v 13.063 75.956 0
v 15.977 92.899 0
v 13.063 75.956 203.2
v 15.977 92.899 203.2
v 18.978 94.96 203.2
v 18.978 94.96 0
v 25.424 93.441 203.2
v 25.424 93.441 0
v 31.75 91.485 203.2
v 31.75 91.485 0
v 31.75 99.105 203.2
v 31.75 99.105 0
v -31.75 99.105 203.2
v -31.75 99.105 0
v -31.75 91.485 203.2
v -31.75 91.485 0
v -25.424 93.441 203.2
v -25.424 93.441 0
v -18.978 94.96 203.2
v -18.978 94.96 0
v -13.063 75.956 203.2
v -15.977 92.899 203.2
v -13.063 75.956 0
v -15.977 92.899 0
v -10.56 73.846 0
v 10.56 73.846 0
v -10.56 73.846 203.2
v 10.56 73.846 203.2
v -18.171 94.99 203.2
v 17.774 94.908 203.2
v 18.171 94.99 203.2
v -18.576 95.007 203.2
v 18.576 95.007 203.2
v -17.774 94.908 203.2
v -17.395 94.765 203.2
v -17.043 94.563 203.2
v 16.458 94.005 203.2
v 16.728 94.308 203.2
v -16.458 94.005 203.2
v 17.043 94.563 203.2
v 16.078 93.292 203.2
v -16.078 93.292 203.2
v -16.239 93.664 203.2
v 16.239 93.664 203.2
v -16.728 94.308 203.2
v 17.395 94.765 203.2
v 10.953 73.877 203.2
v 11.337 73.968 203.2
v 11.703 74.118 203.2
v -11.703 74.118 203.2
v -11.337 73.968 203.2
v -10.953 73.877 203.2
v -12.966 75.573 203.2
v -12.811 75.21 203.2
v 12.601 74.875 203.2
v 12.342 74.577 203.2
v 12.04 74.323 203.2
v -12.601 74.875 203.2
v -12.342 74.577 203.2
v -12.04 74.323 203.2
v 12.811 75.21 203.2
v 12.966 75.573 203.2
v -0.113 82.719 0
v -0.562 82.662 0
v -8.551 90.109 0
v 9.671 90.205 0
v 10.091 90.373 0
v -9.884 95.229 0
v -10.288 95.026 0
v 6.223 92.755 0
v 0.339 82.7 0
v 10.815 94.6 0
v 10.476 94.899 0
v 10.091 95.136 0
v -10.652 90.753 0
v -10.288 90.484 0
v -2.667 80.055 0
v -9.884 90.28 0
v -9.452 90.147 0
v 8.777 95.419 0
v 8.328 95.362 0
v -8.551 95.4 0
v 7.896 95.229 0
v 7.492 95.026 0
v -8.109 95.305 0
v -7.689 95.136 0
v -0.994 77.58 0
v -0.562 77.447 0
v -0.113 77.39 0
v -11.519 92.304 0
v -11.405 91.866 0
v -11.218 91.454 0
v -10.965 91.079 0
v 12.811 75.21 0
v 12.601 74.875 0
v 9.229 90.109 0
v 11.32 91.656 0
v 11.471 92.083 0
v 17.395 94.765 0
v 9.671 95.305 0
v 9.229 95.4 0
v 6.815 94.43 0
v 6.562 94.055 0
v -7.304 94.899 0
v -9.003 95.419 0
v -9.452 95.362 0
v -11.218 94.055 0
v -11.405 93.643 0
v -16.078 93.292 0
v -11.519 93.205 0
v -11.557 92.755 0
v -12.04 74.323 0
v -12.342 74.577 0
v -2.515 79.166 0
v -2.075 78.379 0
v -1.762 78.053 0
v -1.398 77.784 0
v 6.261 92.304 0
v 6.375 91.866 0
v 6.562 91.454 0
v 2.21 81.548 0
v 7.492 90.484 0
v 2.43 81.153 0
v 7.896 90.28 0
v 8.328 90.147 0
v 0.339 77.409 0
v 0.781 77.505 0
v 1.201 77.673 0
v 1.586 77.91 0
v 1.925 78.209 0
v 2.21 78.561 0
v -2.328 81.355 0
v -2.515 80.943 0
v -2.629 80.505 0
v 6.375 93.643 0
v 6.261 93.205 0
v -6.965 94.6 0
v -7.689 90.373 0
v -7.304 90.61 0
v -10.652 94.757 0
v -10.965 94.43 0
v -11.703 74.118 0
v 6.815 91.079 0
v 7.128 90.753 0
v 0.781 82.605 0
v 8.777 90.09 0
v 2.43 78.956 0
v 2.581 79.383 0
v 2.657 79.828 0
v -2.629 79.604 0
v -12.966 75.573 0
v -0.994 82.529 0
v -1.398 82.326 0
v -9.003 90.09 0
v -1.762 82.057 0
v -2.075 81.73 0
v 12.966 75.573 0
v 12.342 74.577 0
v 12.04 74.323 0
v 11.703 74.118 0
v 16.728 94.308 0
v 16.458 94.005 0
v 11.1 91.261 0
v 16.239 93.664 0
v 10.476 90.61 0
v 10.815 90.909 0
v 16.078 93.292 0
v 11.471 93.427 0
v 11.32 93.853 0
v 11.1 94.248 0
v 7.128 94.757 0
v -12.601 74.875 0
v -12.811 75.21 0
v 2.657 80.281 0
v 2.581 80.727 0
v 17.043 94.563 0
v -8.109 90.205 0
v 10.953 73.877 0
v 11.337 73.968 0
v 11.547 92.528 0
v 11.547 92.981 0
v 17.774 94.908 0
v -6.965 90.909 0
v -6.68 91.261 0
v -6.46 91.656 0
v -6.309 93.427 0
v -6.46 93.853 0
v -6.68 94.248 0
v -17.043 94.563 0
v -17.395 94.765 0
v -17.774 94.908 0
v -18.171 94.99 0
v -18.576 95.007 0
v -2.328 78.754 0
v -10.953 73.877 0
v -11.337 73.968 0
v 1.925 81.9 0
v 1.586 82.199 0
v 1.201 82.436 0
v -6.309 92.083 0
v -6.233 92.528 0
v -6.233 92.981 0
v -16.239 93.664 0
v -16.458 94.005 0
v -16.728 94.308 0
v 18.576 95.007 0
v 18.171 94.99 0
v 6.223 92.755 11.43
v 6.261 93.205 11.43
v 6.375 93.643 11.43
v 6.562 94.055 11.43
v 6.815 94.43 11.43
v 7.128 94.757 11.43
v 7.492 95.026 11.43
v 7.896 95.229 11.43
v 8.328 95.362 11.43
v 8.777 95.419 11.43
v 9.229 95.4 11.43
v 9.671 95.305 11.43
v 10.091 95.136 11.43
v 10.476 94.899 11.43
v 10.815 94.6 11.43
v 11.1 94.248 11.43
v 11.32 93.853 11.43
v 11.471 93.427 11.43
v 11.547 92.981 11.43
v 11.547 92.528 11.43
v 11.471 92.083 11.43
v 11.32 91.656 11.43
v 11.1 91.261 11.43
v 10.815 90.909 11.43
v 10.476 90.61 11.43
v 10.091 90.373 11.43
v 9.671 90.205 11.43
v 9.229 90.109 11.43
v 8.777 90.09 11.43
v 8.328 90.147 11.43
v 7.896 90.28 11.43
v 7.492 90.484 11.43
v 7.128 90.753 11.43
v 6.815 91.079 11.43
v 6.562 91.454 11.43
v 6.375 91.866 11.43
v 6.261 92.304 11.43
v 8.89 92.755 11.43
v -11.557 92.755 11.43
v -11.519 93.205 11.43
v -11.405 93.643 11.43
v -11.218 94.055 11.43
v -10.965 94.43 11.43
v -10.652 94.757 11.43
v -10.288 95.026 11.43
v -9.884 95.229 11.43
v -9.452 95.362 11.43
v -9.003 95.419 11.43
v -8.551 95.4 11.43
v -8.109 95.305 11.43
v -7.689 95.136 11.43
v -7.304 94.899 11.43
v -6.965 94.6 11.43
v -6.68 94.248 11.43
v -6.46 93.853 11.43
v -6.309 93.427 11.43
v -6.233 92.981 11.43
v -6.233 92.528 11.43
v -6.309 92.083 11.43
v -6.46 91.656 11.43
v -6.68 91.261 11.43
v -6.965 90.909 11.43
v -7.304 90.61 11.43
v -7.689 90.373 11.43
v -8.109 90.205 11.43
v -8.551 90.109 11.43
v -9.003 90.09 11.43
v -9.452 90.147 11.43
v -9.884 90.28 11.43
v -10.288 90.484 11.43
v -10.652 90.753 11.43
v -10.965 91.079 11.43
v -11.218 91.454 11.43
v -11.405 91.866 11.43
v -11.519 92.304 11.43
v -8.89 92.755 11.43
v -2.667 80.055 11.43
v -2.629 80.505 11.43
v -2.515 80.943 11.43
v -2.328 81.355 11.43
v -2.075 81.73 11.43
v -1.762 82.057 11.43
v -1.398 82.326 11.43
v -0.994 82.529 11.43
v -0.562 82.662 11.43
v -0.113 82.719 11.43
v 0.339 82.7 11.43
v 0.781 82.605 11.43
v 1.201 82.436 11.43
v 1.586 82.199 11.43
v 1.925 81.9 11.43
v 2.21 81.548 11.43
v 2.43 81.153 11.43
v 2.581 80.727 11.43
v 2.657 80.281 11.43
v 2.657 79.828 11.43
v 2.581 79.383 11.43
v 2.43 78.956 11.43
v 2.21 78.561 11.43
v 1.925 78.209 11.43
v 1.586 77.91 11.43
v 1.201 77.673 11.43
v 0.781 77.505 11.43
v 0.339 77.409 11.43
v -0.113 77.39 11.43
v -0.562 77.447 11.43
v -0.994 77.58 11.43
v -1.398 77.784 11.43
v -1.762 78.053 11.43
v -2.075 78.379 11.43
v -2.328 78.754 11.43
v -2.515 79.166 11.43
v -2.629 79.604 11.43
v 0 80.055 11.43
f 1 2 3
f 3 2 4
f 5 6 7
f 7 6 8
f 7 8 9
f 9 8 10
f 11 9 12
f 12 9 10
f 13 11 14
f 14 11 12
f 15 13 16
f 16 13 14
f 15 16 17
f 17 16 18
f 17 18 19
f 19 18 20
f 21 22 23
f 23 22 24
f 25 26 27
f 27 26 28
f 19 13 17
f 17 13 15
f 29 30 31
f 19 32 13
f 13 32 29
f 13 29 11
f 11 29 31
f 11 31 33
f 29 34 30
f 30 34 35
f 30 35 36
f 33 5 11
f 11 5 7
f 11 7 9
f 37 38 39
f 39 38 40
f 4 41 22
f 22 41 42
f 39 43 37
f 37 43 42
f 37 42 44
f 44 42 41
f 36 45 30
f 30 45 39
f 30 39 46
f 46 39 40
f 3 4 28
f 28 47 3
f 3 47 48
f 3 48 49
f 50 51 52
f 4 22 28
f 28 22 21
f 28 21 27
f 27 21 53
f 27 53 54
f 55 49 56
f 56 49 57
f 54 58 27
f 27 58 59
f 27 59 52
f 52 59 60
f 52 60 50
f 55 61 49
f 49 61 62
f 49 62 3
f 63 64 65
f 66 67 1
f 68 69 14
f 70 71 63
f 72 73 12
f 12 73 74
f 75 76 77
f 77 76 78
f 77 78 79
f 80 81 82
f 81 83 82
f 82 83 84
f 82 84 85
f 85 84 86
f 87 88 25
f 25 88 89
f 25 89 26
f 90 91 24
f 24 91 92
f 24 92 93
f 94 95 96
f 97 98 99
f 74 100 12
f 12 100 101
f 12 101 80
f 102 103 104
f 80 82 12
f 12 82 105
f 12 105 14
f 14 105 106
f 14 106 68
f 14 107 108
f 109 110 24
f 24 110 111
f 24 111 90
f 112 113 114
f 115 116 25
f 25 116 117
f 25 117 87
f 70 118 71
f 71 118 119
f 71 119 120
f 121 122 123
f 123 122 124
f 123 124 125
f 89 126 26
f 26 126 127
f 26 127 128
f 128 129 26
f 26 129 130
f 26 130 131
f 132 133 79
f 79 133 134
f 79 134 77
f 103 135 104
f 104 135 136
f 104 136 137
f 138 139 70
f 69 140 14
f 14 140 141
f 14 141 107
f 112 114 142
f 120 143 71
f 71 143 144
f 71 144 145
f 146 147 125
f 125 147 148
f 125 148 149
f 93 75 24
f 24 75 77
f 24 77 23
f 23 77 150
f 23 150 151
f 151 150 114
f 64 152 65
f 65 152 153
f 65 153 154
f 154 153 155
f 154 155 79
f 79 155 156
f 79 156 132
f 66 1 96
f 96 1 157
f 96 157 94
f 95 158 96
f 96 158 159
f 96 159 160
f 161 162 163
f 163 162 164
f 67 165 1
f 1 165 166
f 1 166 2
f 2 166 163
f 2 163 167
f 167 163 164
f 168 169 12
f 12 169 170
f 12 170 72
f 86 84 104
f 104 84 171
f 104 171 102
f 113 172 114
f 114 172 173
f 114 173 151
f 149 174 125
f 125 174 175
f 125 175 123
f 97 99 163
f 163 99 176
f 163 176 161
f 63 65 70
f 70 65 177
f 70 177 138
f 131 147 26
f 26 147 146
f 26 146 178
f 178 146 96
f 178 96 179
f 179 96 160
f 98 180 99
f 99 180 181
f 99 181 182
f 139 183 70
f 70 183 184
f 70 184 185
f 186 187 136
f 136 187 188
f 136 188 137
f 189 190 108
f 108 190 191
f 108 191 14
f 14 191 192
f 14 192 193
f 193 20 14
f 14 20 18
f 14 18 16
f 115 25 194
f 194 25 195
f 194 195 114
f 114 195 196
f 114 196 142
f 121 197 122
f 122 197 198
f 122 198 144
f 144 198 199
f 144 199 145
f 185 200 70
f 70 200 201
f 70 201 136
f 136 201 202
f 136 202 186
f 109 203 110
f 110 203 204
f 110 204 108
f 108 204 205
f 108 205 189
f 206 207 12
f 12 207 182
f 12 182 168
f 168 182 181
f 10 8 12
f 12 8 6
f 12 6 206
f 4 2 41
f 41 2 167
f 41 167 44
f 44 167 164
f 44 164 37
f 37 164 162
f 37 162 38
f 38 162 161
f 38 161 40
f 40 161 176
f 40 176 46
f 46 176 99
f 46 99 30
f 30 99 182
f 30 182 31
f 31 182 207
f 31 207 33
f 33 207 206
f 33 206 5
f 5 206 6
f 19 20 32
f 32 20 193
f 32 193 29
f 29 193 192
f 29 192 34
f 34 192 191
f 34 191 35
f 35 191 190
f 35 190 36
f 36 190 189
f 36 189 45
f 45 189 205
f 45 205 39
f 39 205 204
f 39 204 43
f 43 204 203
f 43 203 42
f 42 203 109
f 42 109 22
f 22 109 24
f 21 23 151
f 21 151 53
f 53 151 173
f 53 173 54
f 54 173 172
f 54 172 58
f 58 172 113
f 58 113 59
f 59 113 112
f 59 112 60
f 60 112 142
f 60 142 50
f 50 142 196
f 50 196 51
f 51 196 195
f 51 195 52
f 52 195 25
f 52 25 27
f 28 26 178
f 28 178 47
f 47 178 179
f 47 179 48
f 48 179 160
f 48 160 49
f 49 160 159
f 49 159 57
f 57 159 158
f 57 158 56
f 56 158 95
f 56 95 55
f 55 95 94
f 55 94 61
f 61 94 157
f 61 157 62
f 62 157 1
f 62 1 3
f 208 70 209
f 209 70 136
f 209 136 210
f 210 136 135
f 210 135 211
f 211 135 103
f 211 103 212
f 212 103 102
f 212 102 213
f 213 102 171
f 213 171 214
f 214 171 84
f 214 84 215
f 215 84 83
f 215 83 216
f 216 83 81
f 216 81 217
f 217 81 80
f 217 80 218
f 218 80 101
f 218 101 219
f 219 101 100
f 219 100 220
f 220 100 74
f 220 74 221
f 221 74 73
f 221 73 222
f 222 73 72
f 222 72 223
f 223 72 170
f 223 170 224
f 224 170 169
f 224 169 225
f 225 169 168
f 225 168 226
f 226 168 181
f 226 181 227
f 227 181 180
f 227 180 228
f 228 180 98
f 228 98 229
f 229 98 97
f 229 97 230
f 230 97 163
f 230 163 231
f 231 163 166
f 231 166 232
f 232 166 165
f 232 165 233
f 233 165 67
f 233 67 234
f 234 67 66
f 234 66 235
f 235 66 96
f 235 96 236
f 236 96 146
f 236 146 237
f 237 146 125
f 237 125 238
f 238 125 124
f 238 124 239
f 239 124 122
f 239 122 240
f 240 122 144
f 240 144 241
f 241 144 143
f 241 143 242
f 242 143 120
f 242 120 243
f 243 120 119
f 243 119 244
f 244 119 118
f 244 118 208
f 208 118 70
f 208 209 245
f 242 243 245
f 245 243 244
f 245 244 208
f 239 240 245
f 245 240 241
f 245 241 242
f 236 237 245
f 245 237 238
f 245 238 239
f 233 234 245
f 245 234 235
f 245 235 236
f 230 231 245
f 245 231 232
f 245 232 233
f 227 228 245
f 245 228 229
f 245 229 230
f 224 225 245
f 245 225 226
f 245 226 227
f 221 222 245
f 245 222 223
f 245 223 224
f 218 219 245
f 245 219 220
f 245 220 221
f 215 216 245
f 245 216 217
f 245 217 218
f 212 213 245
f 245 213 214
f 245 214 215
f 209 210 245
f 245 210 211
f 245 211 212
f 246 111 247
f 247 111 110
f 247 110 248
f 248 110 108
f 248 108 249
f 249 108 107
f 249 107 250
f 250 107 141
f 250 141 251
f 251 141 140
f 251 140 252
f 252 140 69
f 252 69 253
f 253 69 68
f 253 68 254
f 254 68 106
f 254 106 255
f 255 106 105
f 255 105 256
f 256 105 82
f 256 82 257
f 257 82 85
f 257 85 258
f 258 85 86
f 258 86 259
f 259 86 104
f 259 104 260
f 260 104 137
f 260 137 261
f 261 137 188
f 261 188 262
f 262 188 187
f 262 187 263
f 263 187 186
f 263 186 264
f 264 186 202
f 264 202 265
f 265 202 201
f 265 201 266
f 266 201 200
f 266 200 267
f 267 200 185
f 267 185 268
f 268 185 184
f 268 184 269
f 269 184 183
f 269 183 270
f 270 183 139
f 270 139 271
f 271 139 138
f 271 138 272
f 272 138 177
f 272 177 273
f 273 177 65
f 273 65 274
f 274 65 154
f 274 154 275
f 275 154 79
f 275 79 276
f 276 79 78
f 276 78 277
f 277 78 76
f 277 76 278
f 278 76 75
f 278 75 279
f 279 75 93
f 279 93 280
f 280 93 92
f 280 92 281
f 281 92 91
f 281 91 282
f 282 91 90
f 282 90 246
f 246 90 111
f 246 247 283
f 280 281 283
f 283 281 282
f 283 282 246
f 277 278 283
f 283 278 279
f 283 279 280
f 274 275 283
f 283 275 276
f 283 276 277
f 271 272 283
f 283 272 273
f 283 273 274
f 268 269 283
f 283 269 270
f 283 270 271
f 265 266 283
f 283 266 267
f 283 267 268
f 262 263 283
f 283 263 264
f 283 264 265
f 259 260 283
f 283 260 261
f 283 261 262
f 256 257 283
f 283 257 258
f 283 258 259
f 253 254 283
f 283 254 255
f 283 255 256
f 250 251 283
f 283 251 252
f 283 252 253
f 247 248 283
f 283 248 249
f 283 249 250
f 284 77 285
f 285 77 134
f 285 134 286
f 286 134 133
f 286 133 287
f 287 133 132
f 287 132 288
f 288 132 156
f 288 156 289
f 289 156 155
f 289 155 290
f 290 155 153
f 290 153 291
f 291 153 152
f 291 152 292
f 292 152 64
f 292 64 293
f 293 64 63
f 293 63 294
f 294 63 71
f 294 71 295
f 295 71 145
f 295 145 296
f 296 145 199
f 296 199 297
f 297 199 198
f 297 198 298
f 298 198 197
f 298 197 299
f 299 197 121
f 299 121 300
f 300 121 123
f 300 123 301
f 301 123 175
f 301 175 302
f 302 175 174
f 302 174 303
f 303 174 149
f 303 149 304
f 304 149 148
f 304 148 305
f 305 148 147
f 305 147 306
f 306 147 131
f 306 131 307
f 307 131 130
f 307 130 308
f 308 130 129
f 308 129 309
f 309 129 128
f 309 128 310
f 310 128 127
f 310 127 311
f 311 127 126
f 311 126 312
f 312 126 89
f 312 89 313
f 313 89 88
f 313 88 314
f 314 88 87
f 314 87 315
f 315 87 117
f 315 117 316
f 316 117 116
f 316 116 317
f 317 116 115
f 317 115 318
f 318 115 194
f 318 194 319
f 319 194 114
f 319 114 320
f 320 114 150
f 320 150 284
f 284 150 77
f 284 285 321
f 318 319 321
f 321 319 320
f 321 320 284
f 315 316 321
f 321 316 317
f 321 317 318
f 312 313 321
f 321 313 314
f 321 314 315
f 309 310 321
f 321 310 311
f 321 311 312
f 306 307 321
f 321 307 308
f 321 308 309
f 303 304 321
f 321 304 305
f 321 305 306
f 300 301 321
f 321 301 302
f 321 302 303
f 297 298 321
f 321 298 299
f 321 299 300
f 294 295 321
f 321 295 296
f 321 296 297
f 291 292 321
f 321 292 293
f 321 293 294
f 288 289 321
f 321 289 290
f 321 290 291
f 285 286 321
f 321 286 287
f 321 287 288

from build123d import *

# Parameters (mm, degrees)
BOSS_EXTRUDE1_DEPTH = 203.2
FILLET1_R           = 2.54
FILLET2_R           = 2.54
FILLET3_R           = 2.54
SKETCH2_R           = 2.667
CUT_EXTRUDE1_DEPTH  = 11.43


with BuildPart() as part:
    # Sketch1 → Boss-Extrude1 (new body)
    with BuildSketch(Plane.XY):
        with BuildLine():
            Line((-12.7, 73.846320133), (12.7, 73.846320133))
            Line((12.7, 73.846320133), (16.413720047, 95.436320133))
            ThreePointArc((16.413720047, 95.436320133), (24.162779869, 93.77452466), (31.75, 91.484637542))
            Line((31.75, 91.484637542), (31.75, 99.104637542))
            Line((31.75, 99.104637542), (-31.75, 99.104637542))
            Line((-31.75, 99.104637542), (-31.75, 91.484637542))
            ThreePointArc((-31.75, 91.484637542), (-24.162779869, 93.77452466), (-16.413720047, 95.436320133))
            Line((-16.413720047, 95.436320133), (-12.7, 73.846320133))
        make_face()
    extrude(amount=BOSS_EXTRUDE1_DEPTH)

    # Fillet1
    fillet1_edges = [part.edges().sort_by_distance(p)[0] for p in [
        (16.413720047, 95.436320133, 101.6),
    ]]
    fillet(fillet1_edges, radius=FILLET1_R)

    # Fillet2
    fillet2_edges = [part.edges().sort_by_distance(p)[0] for p in [
        (-16.413720047, 95.436320133, 101.6),
    ]]
    fillet(fillet2_edges, radius=FILLET2_R)

    # Fillet3
    fillet3_edges = [part.edges().sort_by_distance(p)[0] for p in [
        (12.7, 73.846320133, 101.6),
        (-12.7, 73.846320133, 101.6),
    ]]
    fillet(fillet3_edges, radius=FILLET3_R)

    # Sketch2 → Cut-Extrude1 (cut)
    with BuildSketch(Plane(origin=(0, 0, 0), x_dir=(-1, 0, 0), z_dir=(0, 0, -1))):
        with Locations((-8.89, 92.754637542)):
            Circle(SKETCH2_R)
        with Locations((8.89, 92.754637542)):
            Circle(SKETCH2_R)
        with Locations((0, 80.054637542)):
            Circle(SKETCH2_R)
    extrude(amount=-CUT_EXTRUDE1_DEPTH, mode=Mode.SUBTRACT)


solid = part.part
